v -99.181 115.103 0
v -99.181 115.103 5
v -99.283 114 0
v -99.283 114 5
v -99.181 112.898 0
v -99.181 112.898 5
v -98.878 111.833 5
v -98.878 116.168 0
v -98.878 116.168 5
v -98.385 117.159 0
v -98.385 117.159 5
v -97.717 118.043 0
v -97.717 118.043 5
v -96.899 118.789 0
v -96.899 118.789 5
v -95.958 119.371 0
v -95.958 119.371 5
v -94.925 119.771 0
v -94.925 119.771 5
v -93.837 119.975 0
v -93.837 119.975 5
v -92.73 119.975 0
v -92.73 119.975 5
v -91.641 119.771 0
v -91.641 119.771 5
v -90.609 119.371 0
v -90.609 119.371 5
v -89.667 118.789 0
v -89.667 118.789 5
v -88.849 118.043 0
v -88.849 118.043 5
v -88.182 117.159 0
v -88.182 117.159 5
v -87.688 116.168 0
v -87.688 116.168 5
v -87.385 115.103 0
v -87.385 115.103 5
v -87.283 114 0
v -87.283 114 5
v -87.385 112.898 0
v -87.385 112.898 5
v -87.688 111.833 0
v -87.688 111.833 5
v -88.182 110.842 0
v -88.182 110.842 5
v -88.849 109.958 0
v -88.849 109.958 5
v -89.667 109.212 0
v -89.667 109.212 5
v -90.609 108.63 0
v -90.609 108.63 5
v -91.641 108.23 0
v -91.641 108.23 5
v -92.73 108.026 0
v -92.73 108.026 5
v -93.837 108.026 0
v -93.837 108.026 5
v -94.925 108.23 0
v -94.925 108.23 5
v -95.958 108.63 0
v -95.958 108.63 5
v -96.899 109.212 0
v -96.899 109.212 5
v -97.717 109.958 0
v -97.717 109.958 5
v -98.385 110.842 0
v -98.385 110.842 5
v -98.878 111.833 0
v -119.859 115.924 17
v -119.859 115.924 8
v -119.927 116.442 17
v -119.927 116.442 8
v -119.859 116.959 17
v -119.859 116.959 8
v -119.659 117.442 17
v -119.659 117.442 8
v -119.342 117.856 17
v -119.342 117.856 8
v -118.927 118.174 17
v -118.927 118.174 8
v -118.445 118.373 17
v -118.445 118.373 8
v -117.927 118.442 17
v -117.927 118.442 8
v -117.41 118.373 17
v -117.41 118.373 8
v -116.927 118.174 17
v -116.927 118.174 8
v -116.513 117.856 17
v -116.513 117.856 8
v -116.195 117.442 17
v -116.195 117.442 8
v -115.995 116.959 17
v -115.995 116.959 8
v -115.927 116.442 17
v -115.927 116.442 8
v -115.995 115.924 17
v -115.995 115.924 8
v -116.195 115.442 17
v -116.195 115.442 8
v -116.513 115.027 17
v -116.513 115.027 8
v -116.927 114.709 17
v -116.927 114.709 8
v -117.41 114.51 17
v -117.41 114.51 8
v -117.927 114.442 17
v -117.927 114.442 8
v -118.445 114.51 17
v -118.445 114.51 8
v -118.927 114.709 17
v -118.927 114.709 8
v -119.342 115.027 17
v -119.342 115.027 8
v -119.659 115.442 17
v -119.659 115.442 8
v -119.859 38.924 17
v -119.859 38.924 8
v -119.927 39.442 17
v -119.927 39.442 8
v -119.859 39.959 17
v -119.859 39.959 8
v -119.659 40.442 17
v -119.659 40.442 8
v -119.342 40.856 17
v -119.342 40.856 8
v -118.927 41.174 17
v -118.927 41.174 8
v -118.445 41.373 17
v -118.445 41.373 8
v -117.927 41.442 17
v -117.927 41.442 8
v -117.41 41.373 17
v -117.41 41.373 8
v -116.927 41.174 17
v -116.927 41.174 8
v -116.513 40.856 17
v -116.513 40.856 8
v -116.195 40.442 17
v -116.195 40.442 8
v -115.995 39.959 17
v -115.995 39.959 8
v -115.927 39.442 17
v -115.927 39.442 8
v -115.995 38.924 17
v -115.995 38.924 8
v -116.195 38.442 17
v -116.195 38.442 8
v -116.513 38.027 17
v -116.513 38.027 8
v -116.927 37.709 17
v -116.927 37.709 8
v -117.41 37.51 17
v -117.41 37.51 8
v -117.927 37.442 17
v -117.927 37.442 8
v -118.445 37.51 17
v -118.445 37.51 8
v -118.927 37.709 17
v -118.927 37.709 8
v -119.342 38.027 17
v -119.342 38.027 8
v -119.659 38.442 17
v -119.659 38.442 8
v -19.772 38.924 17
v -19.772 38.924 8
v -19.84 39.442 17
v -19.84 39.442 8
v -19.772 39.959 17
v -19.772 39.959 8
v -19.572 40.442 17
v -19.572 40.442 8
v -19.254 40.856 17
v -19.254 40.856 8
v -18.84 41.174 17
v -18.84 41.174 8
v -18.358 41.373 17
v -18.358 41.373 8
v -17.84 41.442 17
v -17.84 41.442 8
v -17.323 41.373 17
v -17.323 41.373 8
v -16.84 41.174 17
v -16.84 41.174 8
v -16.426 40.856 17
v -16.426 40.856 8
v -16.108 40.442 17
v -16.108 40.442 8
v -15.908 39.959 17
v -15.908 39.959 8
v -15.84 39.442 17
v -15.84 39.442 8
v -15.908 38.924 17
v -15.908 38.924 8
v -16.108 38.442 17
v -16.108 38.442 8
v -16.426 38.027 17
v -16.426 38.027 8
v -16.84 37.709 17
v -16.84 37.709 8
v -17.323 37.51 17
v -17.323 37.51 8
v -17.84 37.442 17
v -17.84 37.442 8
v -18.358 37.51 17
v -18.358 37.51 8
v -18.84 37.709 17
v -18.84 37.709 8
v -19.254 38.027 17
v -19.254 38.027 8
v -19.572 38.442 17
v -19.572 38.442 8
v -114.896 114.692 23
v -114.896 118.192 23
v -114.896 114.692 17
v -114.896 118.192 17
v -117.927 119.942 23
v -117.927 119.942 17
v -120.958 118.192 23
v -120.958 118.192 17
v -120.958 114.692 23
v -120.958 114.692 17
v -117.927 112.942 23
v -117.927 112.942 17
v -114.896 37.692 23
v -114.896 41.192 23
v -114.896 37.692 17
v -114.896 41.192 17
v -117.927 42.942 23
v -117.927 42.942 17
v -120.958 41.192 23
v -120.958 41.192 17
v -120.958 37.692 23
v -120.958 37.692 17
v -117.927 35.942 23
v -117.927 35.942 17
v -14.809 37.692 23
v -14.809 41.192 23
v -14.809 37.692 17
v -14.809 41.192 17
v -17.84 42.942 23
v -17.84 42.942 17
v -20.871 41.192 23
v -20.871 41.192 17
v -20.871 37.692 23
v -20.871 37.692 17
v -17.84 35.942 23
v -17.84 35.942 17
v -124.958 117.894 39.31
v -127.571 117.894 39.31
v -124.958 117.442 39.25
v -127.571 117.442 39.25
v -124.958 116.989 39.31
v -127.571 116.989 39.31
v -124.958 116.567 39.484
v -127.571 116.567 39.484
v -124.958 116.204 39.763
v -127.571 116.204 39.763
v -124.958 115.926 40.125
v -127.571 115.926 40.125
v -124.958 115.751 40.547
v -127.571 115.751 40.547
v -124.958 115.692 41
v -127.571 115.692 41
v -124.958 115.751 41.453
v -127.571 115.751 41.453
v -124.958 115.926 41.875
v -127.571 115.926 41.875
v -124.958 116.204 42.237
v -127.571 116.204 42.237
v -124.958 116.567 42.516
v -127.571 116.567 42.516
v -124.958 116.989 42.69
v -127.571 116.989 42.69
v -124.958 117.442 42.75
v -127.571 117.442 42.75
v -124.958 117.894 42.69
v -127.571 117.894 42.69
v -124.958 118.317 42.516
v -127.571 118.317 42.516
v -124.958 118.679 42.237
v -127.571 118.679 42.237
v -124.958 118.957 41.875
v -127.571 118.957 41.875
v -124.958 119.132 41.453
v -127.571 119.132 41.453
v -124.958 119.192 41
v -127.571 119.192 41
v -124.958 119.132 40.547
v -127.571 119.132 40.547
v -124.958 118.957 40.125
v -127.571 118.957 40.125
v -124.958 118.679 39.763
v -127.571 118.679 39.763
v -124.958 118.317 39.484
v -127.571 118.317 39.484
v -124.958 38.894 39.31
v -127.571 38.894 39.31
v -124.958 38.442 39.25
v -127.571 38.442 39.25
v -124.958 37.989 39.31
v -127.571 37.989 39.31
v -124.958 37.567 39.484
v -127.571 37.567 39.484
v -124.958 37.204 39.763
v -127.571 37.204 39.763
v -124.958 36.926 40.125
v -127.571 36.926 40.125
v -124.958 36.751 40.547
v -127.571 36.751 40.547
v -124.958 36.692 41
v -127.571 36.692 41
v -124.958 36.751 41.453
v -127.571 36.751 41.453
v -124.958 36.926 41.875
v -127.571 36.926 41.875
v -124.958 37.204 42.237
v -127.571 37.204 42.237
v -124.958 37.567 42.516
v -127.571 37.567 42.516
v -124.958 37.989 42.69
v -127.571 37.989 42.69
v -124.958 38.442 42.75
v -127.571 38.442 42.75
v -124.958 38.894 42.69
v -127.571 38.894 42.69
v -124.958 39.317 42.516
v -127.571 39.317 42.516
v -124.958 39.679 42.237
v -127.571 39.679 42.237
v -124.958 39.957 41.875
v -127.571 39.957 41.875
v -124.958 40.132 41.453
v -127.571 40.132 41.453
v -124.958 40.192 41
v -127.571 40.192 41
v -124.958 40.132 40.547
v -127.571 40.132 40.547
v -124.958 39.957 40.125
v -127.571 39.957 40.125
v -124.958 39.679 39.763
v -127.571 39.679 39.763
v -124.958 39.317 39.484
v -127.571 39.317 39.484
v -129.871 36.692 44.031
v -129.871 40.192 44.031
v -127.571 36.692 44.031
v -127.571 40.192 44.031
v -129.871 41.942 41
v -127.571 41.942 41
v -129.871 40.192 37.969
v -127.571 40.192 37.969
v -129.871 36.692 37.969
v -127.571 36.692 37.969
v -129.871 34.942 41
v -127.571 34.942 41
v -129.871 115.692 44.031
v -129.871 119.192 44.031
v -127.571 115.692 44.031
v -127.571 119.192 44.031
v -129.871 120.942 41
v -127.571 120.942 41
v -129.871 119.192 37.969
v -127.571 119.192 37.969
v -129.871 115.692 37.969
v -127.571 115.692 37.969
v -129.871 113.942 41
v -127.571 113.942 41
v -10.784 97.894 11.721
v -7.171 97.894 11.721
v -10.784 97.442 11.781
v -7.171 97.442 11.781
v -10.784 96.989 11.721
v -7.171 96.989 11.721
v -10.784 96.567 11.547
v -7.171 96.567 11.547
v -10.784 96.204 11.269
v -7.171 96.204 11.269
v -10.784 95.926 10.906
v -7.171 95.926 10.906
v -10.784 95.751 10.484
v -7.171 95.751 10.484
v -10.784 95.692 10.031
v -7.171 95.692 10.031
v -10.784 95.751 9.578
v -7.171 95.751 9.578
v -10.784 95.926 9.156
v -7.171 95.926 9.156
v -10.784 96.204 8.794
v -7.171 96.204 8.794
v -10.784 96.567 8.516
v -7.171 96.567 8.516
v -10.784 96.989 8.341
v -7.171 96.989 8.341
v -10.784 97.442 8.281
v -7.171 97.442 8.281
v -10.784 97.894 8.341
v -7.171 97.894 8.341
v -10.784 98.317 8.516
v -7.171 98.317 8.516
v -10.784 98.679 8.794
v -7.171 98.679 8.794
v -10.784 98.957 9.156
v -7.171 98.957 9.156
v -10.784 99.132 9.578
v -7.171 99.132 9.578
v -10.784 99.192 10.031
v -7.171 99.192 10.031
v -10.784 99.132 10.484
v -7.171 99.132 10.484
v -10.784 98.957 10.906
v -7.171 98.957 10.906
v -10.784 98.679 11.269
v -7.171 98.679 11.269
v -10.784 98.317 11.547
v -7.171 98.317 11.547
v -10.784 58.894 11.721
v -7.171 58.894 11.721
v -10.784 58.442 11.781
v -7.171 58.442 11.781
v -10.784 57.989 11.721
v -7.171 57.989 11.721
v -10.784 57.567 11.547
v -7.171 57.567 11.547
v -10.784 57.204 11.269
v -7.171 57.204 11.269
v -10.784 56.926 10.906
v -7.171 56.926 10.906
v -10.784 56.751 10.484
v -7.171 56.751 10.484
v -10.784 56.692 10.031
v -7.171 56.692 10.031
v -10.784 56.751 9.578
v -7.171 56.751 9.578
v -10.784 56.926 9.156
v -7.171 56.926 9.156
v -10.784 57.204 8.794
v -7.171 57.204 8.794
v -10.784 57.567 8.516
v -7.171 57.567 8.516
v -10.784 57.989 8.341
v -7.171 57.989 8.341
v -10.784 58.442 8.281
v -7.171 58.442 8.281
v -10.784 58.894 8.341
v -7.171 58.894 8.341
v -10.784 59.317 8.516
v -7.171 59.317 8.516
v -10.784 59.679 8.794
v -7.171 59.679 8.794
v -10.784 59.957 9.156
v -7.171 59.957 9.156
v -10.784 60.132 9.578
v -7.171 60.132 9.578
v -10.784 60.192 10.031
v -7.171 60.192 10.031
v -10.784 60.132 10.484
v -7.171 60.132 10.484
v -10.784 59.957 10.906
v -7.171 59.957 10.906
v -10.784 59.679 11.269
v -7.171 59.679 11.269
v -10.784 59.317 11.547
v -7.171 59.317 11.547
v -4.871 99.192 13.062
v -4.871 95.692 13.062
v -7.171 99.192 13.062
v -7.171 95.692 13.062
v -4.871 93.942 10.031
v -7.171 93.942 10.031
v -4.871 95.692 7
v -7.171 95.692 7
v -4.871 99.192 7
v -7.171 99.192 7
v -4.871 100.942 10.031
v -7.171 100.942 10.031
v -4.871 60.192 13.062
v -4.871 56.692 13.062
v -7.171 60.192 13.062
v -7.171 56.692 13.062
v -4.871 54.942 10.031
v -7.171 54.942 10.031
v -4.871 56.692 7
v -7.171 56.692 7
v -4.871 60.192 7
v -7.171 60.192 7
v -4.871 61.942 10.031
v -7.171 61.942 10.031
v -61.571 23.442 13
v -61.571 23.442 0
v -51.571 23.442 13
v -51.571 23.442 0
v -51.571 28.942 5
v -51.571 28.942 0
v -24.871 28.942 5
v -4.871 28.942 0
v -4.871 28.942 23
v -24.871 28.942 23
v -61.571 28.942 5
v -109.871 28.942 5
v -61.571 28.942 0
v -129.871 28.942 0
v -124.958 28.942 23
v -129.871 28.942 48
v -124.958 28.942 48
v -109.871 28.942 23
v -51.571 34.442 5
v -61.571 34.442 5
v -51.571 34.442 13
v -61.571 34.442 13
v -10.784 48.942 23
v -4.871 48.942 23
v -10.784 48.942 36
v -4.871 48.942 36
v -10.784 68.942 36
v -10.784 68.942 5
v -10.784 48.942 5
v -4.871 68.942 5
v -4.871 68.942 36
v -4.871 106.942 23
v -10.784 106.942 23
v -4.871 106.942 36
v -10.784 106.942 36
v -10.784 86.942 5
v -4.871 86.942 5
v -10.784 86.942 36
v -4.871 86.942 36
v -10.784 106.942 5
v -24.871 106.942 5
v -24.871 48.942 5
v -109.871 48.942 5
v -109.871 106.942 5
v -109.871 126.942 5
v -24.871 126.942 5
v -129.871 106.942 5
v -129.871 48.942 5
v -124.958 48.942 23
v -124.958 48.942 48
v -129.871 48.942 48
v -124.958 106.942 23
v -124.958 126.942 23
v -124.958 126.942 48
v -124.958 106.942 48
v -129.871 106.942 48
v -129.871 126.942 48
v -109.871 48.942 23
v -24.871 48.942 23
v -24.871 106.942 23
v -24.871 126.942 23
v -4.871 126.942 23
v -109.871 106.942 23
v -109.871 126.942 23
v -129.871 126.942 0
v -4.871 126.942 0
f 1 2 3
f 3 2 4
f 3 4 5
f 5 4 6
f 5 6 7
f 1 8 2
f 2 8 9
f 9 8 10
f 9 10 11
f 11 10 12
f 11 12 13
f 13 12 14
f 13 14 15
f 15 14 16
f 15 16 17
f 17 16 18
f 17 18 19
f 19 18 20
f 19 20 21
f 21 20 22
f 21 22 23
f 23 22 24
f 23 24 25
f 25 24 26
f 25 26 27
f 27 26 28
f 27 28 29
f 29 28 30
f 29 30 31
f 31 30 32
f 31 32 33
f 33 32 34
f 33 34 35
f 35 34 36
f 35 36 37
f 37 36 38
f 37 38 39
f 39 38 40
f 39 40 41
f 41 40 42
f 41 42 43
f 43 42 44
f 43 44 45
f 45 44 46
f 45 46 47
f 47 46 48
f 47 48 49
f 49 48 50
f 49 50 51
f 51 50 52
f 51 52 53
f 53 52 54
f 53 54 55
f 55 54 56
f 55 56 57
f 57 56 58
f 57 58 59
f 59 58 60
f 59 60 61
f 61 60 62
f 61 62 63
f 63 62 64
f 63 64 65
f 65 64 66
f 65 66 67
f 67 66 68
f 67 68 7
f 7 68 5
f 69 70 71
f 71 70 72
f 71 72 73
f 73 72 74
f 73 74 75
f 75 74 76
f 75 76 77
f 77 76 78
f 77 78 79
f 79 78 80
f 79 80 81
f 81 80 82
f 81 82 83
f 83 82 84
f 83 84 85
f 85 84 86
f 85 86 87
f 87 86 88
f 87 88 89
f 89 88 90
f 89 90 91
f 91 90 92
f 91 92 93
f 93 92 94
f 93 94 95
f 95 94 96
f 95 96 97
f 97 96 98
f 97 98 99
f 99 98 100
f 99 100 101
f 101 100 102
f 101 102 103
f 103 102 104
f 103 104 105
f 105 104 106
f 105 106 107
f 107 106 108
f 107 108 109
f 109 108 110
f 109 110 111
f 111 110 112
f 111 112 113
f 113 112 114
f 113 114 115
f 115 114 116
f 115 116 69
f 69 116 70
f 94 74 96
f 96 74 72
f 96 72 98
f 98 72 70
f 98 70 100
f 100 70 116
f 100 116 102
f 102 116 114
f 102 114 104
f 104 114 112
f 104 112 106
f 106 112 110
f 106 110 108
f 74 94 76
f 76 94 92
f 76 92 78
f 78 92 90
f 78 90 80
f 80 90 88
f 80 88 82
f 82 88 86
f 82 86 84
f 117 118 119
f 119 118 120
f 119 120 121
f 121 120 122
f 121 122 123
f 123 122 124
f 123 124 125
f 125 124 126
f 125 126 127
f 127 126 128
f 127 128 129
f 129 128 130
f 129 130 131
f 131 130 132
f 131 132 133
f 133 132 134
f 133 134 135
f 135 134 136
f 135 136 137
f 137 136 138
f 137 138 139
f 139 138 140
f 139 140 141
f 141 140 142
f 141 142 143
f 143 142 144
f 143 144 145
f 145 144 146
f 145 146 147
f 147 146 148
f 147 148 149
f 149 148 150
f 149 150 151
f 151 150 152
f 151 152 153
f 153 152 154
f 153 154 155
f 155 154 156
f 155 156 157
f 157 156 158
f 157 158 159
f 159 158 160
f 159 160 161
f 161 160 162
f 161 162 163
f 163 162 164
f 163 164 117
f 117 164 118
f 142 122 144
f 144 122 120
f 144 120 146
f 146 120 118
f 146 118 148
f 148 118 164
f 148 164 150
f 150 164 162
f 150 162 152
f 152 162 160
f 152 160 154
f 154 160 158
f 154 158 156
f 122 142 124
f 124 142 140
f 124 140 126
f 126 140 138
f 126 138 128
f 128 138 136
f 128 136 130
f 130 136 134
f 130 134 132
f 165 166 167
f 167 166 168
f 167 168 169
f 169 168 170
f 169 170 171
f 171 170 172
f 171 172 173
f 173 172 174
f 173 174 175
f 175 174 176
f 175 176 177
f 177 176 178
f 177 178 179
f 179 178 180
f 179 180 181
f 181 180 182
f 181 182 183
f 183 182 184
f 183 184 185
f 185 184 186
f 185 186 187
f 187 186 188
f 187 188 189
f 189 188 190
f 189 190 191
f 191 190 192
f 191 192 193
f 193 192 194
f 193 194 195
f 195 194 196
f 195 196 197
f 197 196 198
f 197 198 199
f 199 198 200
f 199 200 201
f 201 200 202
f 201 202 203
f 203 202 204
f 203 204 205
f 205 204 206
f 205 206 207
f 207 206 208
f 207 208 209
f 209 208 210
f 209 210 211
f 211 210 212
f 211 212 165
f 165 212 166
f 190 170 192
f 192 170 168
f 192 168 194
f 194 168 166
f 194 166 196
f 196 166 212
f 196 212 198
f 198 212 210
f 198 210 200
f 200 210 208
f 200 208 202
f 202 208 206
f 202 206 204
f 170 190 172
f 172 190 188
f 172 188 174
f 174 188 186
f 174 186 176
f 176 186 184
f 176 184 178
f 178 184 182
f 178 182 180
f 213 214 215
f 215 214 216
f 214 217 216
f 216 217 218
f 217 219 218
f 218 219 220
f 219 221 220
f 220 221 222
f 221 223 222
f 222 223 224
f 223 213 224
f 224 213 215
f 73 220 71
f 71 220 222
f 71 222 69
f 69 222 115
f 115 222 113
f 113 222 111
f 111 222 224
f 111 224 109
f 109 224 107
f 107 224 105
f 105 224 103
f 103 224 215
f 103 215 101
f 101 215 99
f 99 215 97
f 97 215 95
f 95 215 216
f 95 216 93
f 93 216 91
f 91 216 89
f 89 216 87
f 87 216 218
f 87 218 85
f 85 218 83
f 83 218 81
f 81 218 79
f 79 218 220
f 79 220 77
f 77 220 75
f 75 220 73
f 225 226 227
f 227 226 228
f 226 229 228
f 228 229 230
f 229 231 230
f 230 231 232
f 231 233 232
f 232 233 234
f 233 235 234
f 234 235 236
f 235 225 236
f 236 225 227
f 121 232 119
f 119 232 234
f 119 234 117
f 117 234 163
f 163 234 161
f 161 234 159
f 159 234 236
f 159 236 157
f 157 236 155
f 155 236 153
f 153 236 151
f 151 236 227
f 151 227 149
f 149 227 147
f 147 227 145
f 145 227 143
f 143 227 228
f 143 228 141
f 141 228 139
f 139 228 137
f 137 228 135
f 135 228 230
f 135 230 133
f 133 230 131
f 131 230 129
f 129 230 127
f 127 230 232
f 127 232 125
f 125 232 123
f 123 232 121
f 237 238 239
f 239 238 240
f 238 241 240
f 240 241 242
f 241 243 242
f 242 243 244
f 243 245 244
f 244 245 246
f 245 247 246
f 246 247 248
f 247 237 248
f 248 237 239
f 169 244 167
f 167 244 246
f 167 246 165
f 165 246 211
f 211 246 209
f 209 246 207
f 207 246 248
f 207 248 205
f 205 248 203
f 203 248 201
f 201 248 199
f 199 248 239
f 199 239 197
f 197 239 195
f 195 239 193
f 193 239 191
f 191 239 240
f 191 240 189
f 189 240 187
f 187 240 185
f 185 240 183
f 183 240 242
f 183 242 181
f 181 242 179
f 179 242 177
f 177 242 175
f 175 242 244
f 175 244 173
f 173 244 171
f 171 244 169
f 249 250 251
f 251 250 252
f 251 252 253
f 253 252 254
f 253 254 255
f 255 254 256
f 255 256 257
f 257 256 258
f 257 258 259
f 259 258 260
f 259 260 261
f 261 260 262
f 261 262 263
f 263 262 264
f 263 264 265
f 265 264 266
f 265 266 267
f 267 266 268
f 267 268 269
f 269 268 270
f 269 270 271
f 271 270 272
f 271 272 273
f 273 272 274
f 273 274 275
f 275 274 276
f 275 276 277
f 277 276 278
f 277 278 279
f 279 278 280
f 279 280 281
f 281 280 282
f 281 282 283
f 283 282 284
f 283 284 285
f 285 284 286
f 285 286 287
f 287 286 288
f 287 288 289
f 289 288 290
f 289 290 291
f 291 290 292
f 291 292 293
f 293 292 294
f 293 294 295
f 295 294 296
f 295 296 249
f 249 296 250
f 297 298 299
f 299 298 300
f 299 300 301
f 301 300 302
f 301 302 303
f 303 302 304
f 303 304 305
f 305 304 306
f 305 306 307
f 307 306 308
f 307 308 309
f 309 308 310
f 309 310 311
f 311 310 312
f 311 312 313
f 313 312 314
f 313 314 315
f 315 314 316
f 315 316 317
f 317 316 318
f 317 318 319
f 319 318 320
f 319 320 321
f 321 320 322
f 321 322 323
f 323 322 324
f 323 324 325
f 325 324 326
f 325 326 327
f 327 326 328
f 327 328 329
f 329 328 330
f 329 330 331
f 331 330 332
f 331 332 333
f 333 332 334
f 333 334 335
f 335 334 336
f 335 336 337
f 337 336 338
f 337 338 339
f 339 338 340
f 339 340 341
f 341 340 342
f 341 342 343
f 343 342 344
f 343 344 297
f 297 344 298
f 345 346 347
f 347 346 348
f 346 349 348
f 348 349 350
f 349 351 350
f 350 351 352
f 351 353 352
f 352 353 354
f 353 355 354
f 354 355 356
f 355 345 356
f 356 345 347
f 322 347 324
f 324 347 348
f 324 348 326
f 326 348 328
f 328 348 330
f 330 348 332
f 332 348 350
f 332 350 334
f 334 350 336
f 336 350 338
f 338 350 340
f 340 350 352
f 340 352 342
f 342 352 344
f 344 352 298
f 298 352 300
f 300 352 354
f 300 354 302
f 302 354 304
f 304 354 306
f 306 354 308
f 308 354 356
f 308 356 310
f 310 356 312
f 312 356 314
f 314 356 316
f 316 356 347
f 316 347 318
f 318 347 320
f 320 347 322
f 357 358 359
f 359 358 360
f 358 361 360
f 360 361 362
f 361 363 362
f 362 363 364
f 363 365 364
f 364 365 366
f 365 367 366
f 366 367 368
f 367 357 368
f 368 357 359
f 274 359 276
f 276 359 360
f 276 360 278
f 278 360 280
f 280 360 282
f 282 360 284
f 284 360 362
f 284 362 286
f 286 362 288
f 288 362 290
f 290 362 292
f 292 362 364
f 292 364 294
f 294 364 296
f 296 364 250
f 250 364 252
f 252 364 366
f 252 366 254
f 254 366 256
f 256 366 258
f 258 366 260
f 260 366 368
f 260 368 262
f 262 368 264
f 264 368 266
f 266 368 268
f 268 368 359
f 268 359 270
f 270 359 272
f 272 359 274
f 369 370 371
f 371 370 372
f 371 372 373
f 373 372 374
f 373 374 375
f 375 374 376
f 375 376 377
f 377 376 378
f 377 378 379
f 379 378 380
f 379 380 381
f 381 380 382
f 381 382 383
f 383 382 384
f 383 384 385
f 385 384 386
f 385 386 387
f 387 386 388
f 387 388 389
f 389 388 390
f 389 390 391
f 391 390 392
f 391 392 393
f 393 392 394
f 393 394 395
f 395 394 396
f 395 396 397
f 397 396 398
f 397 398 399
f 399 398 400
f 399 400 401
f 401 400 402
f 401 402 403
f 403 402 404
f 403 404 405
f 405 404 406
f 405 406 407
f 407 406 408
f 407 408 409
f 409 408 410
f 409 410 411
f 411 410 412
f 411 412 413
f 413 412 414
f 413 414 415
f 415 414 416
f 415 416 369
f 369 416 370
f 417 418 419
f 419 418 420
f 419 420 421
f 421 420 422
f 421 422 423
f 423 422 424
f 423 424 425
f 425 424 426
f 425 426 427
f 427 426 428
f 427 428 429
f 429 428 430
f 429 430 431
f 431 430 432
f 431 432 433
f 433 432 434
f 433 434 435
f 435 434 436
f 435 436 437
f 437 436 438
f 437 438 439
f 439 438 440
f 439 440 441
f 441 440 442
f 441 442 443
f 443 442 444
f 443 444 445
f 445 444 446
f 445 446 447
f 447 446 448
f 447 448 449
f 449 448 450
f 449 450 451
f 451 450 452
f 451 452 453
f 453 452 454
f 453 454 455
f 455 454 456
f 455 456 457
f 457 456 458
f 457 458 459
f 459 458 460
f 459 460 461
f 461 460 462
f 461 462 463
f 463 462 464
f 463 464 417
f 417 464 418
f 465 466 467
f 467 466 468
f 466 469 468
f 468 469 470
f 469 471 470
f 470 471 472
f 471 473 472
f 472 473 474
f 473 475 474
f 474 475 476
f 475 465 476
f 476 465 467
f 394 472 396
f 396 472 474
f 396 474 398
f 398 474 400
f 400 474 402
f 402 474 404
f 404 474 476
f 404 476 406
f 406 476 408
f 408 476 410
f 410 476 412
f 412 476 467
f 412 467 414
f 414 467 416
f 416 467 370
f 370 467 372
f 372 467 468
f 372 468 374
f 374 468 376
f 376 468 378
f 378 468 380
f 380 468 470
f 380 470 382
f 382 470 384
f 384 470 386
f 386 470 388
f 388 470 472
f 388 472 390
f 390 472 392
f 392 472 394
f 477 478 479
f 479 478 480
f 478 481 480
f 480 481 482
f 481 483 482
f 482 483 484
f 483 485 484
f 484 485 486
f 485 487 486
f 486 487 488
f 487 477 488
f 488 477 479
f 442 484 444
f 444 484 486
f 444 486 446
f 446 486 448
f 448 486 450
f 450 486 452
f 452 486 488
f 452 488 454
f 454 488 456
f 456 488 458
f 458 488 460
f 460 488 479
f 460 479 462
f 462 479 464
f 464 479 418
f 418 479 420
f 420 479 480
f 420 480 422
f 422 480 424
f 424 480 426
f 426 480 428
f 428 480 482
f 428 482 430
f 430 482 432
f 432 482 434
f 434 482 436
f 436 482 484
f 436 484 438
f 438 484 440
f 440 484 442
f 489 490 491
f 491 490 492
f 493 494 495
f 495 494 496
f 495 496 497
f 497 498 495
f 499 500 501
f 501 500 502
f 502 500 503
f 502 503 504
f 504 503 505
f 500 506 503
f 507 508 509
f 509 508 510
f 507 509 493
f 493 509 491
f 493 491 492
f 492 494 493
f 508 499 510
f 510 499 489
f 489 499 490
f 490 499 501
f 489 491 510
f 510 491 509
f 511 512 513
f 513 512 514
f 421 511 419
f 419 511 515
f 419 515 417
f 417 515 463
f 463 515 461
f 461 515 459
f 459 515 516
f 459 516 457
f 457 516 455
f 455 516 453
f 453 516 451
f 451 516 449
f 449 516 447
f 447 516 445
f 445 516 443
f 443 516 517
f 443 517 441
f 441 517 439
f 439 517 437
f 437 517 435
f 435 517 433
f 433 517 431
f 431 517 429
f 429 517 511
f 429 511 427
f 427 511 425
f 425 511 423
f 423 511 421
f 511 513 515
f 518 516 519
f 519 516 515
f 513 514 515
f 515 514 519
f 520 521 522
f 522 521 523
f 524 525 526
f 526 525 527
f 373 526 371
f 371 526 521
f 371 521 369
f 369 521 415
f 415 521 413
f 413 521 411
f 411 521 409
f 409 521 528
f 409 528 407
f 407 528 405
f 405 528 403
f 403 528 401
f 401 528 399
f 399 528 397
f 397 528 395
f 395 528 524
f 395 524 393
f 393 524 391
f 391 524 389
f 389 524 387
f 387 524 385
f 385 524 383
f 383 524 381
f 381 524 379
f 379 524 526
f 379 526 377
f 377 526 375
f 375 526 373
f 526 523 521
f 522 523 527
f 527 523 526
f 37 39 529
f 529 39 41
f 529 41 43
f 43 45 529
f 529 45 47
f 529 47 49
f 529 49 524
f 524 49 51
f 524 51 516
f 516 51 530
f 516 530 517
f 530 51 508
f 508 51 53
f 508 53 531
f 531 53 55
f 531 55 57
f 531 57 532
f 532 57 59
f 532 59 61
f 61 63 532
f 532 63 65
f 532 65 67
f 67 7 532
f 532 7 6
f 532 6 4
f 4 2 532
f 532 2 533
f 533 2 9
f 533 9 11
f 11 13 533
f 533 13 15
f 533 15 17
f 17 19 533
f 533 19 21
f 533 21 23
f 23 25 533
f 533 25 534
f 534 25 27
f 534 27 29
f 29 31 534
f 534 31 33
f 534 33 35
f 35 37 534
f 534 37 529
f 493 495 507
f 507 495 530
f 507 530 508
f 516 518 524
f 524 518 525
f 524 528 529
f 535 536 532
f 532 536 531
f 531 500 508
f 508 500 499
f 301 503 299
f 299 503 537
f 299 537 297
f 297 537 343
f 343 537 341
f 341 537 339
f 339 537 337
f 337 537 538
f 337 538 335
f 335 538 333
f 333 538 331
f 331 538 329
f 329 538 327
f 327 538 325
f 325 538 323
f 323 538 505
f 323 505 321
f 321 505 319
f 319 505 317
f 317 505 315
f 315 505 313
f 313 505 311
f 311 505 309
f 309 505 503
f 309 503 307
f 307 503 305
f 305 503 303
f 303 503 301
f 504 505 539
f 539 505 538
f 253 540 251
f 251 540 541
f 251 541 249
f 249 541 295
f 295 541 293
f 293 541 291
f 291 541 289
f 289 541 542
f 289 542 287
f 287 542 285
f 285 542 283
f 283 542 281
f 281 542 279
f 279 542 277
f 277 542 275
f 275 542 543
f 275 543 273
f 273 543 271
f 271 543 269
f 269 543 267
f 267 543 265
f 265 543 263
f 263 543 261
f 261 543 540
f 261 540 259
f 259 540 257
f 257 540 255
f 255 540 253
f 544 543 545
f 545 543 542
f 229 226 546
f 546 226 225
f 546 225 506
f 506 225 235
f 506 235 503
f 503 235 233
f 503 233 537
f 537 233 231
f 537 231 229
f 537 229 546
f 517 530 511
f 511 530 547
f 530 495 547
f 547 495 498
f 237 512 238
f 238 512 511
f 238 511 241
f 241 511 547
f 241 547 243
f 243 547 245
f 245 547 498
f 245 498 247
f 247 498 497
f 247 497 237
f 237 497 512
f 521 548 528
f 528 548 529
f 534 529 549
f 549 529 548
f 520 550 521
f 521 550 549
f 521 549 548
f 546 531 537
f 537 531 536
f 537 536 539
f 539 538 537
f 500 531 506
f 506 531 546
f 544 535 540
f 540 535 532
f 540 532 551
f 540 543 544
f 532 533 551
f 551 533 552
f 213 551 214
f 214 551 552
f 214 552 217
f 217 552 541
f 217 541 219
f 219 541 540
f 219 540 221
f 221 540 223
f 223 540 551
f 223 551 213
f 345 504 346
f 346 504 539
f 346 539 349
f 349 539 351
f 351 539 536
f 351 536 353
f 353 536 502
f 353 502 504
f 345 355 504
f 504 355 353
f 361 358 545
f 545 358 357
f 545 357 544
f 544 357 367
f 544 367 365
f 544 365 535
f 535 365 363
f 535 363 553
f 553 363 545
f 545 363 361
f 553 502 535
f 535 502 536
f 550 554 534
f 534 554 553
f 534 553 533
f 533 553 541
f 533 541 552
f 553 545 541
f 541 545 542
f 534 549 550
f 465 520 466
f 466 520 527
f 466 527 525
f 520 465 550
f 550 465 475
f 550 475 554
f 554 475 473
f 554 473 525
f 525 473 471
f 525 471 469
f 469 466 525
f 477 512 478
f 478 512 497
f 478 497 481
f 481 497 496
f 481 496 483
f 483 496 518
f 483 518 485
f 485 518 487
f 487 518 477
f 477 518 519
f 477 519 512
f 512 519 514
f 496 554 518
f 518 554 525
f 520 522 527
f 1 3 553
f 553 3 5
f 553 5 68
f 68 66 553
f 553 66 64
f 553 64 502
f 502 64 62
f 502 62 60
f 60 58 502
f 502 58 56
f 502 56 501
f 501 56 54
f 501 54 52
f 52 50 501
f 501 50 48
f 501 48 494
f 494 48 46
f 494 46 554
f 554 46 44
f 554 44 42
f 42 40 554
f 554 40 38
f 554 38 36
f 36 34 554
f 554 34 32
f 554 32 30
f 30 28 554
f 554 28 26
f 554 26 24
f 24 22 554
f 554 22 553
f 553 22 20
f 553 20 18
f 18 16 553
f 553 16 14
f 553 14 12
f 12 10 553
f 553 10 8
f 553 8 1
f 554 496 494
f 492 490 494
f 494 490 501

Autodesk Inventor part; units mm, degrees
ref_plane "YZ Plane" through (0, 0, 0) normal (1, 0, 0) x (0, 1, 0)
ref_plane "XZ Plane" through (0, 0, 0) normal (0, 1, 0) x (-1, 0, 0)
ref_plane "XY Plane" through (0, 0, 0) normal (0, 0, 1) x (1, 0, 0)
sketch "Boceto1" plane through (0, 0, 0) normal (0, 0, 1) x (1, 0, 0)
  line L0 (-129.8713, 126.9415) -> (-4.8713, 126.9415)
  line L1 (-4.8713, 126.9415) -> (-4.8713, 28.9415)
  line L2 (-4.8713, 28.9415) -> (-129.8713, 28.9415)
  line L3 (-129.8713, 28.9415) -> (-129.8713, 126.9415)
  point P0 (0, 0)
  dimension "d0" = 98
  dimension "d1" = 125
extrude "Extrusión1" add sketch "Boceto1" along normal blind 5
sketch "Boceto2" plane through (0, 0, 5) normal (0, 0, 1) x (1, 0, 0)
  line L0 (-4.8713, 126.9415) -> (-129.8713, 126.9415) projected
  point P0 (0, 0)
sketch "Boceto3" plane through (0, 0, 5) normal (0, 0, 1) x (1, 0, 0)
  line L0 (-129.8713, 126.9415) -> (-129.8713, 28.9415) projected
  line L1 (-124.9455, 121.4415) -> (-10.7713, 121.4415) construction
  line L2 (-10.7713, 121.4415) -> (-10.7713, 34.4465) construction
  line L3 (-10.7713, 34.4465) -> (-124.9455, 34.4465) construction
  line L4 (-124.9455, 34.4465) -> (-124.9455, 121.4415) construction
  line L5 (-4.8713, 28.9415) -> (-4.8713, 126.9415) projected
  line L6 (-4.8713, 126.9415) -> (-129.8713, 126.9415) projected
  line L7 (-129.8713, 28.9415) -> (-4.8713, 28.9415) projected
  line L8 (-129.8713, 126.9415) -> (-109.8713, 126.9415)
  line L9 (-109.8713, 126.9415) -> (-109.8713, 106.9415)
  line L10 (-109.8713, 106.9415) -> (-129.8713, 106.9415)
  line L11 (-129.8713, 106.9415) -> (-129.8713, 126.9415)
  line L12 (-129.8713, 28.9415) -> (-109.8713, 28.9415)
  line L13 (-109.8713, 28.9415) -> (-109.8713, 48.9415)
  line L14 (-109.8713, 48.9415) -> (-129.8713, 48.9415)
  line L15 (-129.8713, 48.9415) -> (-129.8713, 28.9415)
  line L16 (-4.8713, 28.9415) -> (-24.8713, 28.9415)
  line L17 (-24.8713, 28.9415) -> (-24.8713, 48.9415)
  line L18 (-24.8713, 48.9415) -> (-4.8713, 48.9415)
  line L19 (-4.8713, 48.9415) -> (-4.8713, 28.9415)
  line L20 (-4.8713, 126.9415) -> (-24.8713, 126.9415)
  line L21 (-24.8713, 126.9415) -> (-24.8713, 106.9415)
  line L22 (-24.8713, 106.9415) -> (-4.8713, 106.9415)
  line L23 (-4.8713, 106.9415) -> (-4.8713, 126.9415)
  point P0 (0, 0)
  point P1 (-109.8713, 28.9415)
  point P2 (-4.8713, 106.9415)
  dimension "d58" = 86.995
  dimension "d62" = 114.1741
  dimension "d67" = 5.9
  dimension "d68" = 4.9259
  dimension "d70" = 5.5
  dimension "d71" = 5.505
  dimension "d86" = 20
  dimension "d87" = 20
  dimension "d88" = 20
  dimension "d89" = 20
  dimension "d90" = 20
  dimension "d91" = 20
  dimension "d92" = 20
  dimension "d93" = 20
extrude "Extrusión2" add sketch "Boceto3" along normal blind 18 contours L6 L9 L10 L0 | L14 L13 L7 L0 | L6 L5 L22 L21 | L17 L18 L5 L7
sketch "Boceto4" plane through (0, 0, 23) normal (0, 0, 1) x (1, 0, 0)
  line L0 (-124.9585, 121.4415) -> (-10.7843, 121.4415) construction
  line L1 (-10.7843, 121.4415) -> (-10.7843, 34.4465) construction
  line L2 (-10.7843, 34.4465) -> (-124.9585, 34.4465) construction
  line L3 (-124.9585, 34.4465) -> (-124.9585, 121.4415) construction
  line L4 (-4.8713, 48.9415) -> (-4.8713, 106.9415) projected
  line L5 (-24.8713, 126.9415) -> (-109.8713, 126.9415) projected
  line L6 (-109.8713, 28.9415) -> (-24.8713, 28.9415) projected
  line L7 (-129.8713, 106.9415) -> (-129.8713, 48.9415) projected
  line L8 (-129.8713, 106.9415) -> (-109.8713, 106.9415) projected
  line L9 (-129.8713, 126.9415) -> (-124.9585, 126.9415)
  line L10 (-124.9585, 126.9415) -> (-124.9585, 106.9415)
  line L11 (-124.9585, 106.9415) -> (-129.8713, 106.9415)
  line L12 (-129.8713, 106.9415) -> (-129.8713, 126.9415)
  line L13 (-124.9585, 28.9415) -> (-129.8713, 28.9415)
  line L14 (-129.8713, 28.9415) -> (-129.8713, 48.9415)
  line L15 (-129.8713, 48.9415) -> (-124.9585, 48.9415)
  line L16 (-124.9585, 48.9415) -> (-124.9585, 28.9415)
  line L17 (-4.8713, 28.9415) -> (-4.8713, 126.9415) projected
  point P0 (0, 0)
  point P1 (-10.7843, 48.9415)
  dimension "d105" = 5.5
  dimension "d106" = 5.505
  dimension "d108" = 5.913
  dimension "d109" = 4.9129
  dimension "d111" = 20
extrude "Extrusión3" add sketch "Boceto4" along normal blind 25
sketch "Boceto5" plane through (0, 0, 5) normal (0, 0, 1) x (1, 0, 0)
  line L0 (-4.8713, 48.9415) -> (-4.8713, 106.9415) projected
  line L1 (-4.8713, 48.9415) -> (-10.7843, 48.9415)
  line L2 (-10.7843, 48.9415) -> (-10.7843, 68.9415)
  line L3 (-10.7843, 68.9415) -> (-4.8713, 68.9415)
  line L4 (-4.8713, 68.9415) -> (-4.8713, 48.9415)
  line L5 (-4.8713, 106.9415) -> (-24.8713, 106.9415) projected
  line L6 (-4.8713, 106.9415) -> (-10.7843, 106.9415)
  line L7 (-10.7843, 106.9415) -> (-10.7843, 86.9415)
  line L8 (-10.7843, 86.9415) -> (-4.8713, 86.9415)
  line L9 (-4.8713, 86.9415) -> (-4.8713, 106.9415)
  point P0 (0, 0)
  dimension "d120" = 20
  dimension "d121" = 5.913
  dimension "d122" = 20
extrude "Extrusión4" add sketch "Boceto5" along normal blind 31
sketch "Boceto6" plane through (0, 0, 5) normal (0, 0, 1) x (1, 0, 0)
  line L0 (-10.7843, 120.6745) -> (-10.7843, 34.4415) construction
  line L1 (-123.9583, 34.4415) -> (-123.9583, 120.6745) construction
  line L2 (-10.7843, 34.4415) -> (-123.9583, 34.4415) construction
  line L3 (-123.9583, 120.6745) -> (-10.7843, 120.6745) construction
  line L4 (-4.8713, 68.9415) -> (-4.8713, 86.9415) projected
  line L5 (-129.8713, 106.9415) -> (-129.8713, 48.9415) projected
  line L6 (-109.8713, 28.9415) -> (-24.8713, 28.9415) projected
  line L7 (-24.8713, 126.9415) -> (-109.8713, 126.9415) projected
  line L8 (-61.5713, 34.4415) -> (-51.5713, 34.4415)
  line L9 (-51.5713, 34.4415) -> (-51.5713, 28.9415)
  line L10 (-51.5713, 28.9415) -> (-61.5713, 28.9415)
  line L11 (-61.5713, 28.9415) -> (-61.5713, 34.4415)
  line L12 (-4.8713, 28.9415) -> (-4.8713, 48.9415) projected
  line L13 (-129.8713, 48.9415) -> (-129.8713, 28.9415) projected
  point P0 (0, 0)
  point P1 (-123.9583, 118.8668)
  point P2 (-123.9583, 40.8668)
  point P3 (-10.7843, 60.8668)
  point P4 (-51.5713, 31.6915)
  point P5 (-61.5713, 28.9415)
  dimension "d130" = 5.913
  dimension "d131" = 5.913
  dimension "d132" = 5.5
  dimension "d133" = 6.267
  dimension "d135" = 10
  dimension "d136" = 46.7
  dimension "d137" = 68.3
extrude "Extrusión5" add sketch "Boceto6" along normal blind 8
sketch "Boceto7" plane through (-129.8713, 28.9415, 0) normal (0, -1, 0) x (1, 0, 0)
  line L0 (68.3, 5) -> (68.3, 13) projected
  line L1 (68.3, 13) -> (78.3, 13)
  line L2 (78.3, 13) -> (78.3, 0)
  line L3 (78.3, 0) -> (68.3, 0)
  line L4 (68.3, 0) -> (68.3, 13)
  line L5 (0, 0) -> (125, 0) projected
  point P0 (129.8713, 0)
  point P1 (78.3, 5)
extrude "Extrusión6" add sketch "Boceto7" along normal blind 5.5
sketch "Boceto8" plane through (-4.8713, 28.9415, 0) normal (1, 0, 0) x (0, 0, -1)
  line L0 (-7, 31.25) -> (-7, 27.75)
  line L1 (-7, 27.75) -> (-10.0311, 26)
  line L2 (-10.0311, 26) -> (-13.0622, 27.75)
  line L3 (-13.0622, 27.75) -> (-13.0622, 31.25)
  line L4 (-13.0622, 31.25) -> (-10.0311, 33)
  line L5 (-10.0311, 33) -> (-7, 31.25)
  line L6 (0, 0) -> (0, 98) projected
  line L7 (-5, 40) -> (-36, 40) projected
  line L8 (-5, 58) -> (-36, 58) projected
  line L9 (-7, 70.25) -> (-7, 66.75)
  line L10 (-7, 66.75) -> (-10.0311, 65)
  line L11 (-10.0311, 65) -> (-13.0622, 66.75)
  line L12 (-13.0622, 66.75) -> (-13.0622, 70.25)
  line L13 (-13.0622, 70.25) -> (-10.0311, 72)
  line L14 (-10.0311, 72) -> (-7, 70.25)
  point P0 (0, -28.9415)
  point P1 (-10.0311, 29.5)
  point P2 (-7, 29.5)
  point P3 (-10.0311, 68.5)
  point P4 (-7, 68.5)
  dimension "d149" = 3.5
  dimension "d151" = 7
  dimension "d153" = 7
  dimension "d156" = 3.5
  dimension "d157" = 7
  dimension "d158" = 7
extrude "Extrusión7" cut sketch "Boceto8" against normal blind 2.3
sketch "Boceto9" plane through (0, 0, 5) normal (0, 0, 1) x (1, 0, 0)
  point P0 (0, 0)
sketch "Boceto10" plane through (-7.1713, 28.9415, 0) normal (1, 0, 0) x (0, 0, -1)
  circle A0 centre (-10.0311, 29.5) radius 1.75
  line L0 (-13.0622, 27.75) -> (-13.0622, 31.25) projected
  line L1 (-10.0311, 33) -> (-7, 31.25) projected
  line L2 (-7, 31.25) -> (-7, 27.75) projected
  line L3 (-13.0622, 31.25) -> (-10.0311, 33) projected
  line L4 (-7, 27.75) -> (-10.0311, 26) projected
  circle A1 centre (-10.0311, 68.5) radius 1.75
  line L5 (-10.0311, 65) -> (-13.0622, 66.75) projected
  line L6 (-13.0622, 66.75) -> (-13.0622, 70.25) projected
  line L7 (-10.0311, 72) -> (-7, 70.25) projected
  line L8 (-7, 70.25) -> (-7, 66.75) projected
  point P0 (0, -28.9415)
  dimension "d161" = 3.5
  dimension "d162" = 3.5
  dimension "d163" = 3.5
  dimension "d164" = 3.5
  dimension "d165" = 3.5
  dimension "d166" = 3.5
  dimension "d167" = 3.5
  dimension "d168" = 3.5
  dimension "d169" = 3.5
  dimension "d170" = 3.5
  dimension "d171" = 3.5
extrude "Extrusión8" cut sketch "Boceto10" against normal blind 5
sketch "Boceto11" plane through (-129.8713, 28.9415, 0) normal (-1, 0, 0) x (0, 0, 1)
  line L0 (37.9689, 86.75) -> (37.9689, 90.25)
  line L1 (37.9689, 90.25) -> (41, 92)
  line L2 (41, 92) -> (44.0311, 90.25)
  line L3 (44.0311, 90.25) -> (44.0311, 86.75)
  line L4 (44.0311, 86.75) -> (41, 85)
  line L5 (41, 85) -> (37.9689, 86.75)
  line L6 (37.9689, 7.75) -> (37.9689, 11.25)
  line L7 (37.9689, 11.25) -> (41, 13)
  line L8 (41, 13) -> (44.0311, 11.25)
  line L9 (44.0311, 11.25) -> (44.0311, 7.75)
  line L10 (44.0311, 7.75) -> (41, 6)
  line L11 (41, 6) -> (37.9689, 7.75)
  line L12 (48, 20) -> (48, 0) projected
  line L13 (48, 98) -> (48, 78) projected
  line L14 (5, 78) -> (48, 78) projected
  line L15 (5, 20) -> (48, 20) projected
  point P0 (0, -28.9415)
  point P1 (41, 88.5)
  point P2 (41, 9.5)
  point P3 (48, 10)
  dimension "d174" = 7
  dimension "d175" = 3.5
  dimension "d176" = 7
  dimension "d177" = 3.5
  dimension "d178" = 7
  dimension "d179" = 7
extrude "Extrusión9" cut sketch "Boceto11" against normal blind 2.3
sketch "Boceto12" plane through (-127.5713, 28.9415, 0) normal (-1, 0, 0) x (0, 0, 1)
  circle A0 centre (41, 88.5) radius 1.75
  line L0 (44.0311, 86.75) -> (41, 85) projected
  line L1 (37.9689, 90.25) -> (41, 92) projected
  line L2 (41, 85) -> (37.9689, 86.75) projected
  line L3 (44.0311, 90.25) -> (44.0311, 86.75) projected
  circle A1 centre (41, 9.5) radius 1.75
  line L4 (44.0311, 11.25) -> (44.0311, 7.75) projected
  line L5 (37.9689, 11.25) -> (41, 13) projected
  point P0 (0, -28.9415)
  dimension "d182" = 3.5
  dimension "d184" = 3.5
  dimension "d187" = 3.5
  dimension "d188" = 3.5
  dimension "d189" = 3.5
  dimension "d190" = 3.5
  dimension "d191" = 3.5
  dimension "d192" = 3.5
extrude "Extrusión10" cut sketch "Boceto12" against normal blind 5
sketch "Boceto13" plane through (0, 0, 23) normal (0, 0, 1) x (1, 0, 0)
  line L0 (-20.8713, 37.6915) -> (-20.8713, 41.1915)
  line L1 (-20.8713, 41.1915) -> (-17.8403, 42.9415)
  line L2 (-17.8403, 42.9415) -> (-14.8092, 41.1915)
  line L3 (-14.8092, 41.1915) -> (-14.8092, 37.6915)
  line L4 (-14.8092, 37.6915) -> (-17.8403, 35.9415)
  line L5 (-17.8403, 35.9415) -> (-20.8713, 37.6915)
  line L6 (-24.8713, 48.9415) -> (-24.8713, 28.9415) projected
  line L7 (-10.7843, 48.9415) -> (-24.8713, 48.9415) projected
  line L8 (-120.9585, 37.6915) -> (-120.9585, 41.1915)
  line L9 (-120.9585, 41.1915) -> (-117.9274, 42.9415)
  line L10 (-117.9274, 42.9415) -> (-114.8963, 41.1915)
  line L11 (-114.8963, 41.1915) -> (-114.8963, 37.6915)
  line L12 (-114.8963, 37.6915) -> (-117.9274, 35.9415)
  line L13 (-117.9274, 35.9415) -> (-120.9585, 37.6915)
  line L14 (-124.9585, 28.9415) -> (-124.9585, 48.9415) projected
  line L15 (-109.8713, 48.9415) -> (-124.9585, 48.9415) projected
  line L16 (-120.9585, 114.6915) -> (-120.9585, 118.1915)
  line L17 (-120.9585, 118.1915) -> (-117.9274, 119.9415)
  line L18 (-117.9274, 119.9415) -> (-114.8963, 118.1915)
  line L19 (-114.8963, 118.1915) -> (-114.8963, 114.6915)
  line L20 (-114.8963, 114.6915) -> (-117.9274, 112.9415)
  line L21 (-117.9274, 112.9415) -> (-120.9585, 114.6915)
  line L22 (-124.9585, 106.9415) -> (-124.9585, 126.9415) projected
  line L23 (-124.9585, 106.9415) -> (-109.8713, 106.9415) projected
  line L24 (-13.0065, 121.4993) -> (-13.0065, 35.2663) construction
  line L25 (-126.1805, 35.2663) -> (-126.1805, 121.4993) construction
  line L26 (-13.0065, 35.2663) -> (-126.1805, 35.2663) construction
  line L27 (-126.1805, 121.4993) -> (-13.0065, 121.4993) construction
  point P0 (0, 0)
  point P1 (-17.8403, 39.4415)
  point P2 (-20.8713, 39.4415)
  point P3 (-117.9274, 39.4415)
  point P4 (-120.9585, 39.4415)
  point P5 (-117.9274, 116.4415)
  point P6 (-13.0065, 61.6917)
  point P7 (-126.1805, 119.6917)
  point P8 (-126.1805, 41.6917)
  point P9 (-63.7935, 35.2663)
  dimension "d195" = 3.5
  dimension "d196" = 6
  dimension "d197" = 4
  dimension "d198" = 6
  dimension "d199" = 4
  dimension "d200" = 6
  dimension "d201" = 4
  dimension "d202" = 3.5
  dimension "d203" = 3.5
extrude "Extrusión11" cut sketch "Boceto13" against normal blind 6
sketch "Boceto17" plane through (0, 0, 23) normal (0, 0, 1) x (1, 0, 0)
  circle A0 centre (-17.8403, 39.4415) radius 2
  line L0 (-14.8092, 41.1915) -> (-14.8092, 37.6915) projected
  line L1 (-14.8092, 41.1915) -> (-14.8092, 37.6915) projected
  line L2 (-20.8713, 41.1915) -> (-17.8403, 42.9415) projected
  circle A1 centre (-117.9274, 39.4415) radius 2
  line L3 (-117.9274, 42.9415) -> (-114.8963, 41.1915) projected
  line L4 (-120.9585, 37.6915) -> (-120.9585, 41.1915) projected
  line L5 (-114.8963, 37.6915) -> (-117.9274, 35.9415) projected
  circle A2 centre (-117.9274, 116.4415) radius 2
  line L6 (-117.9274, 119.9415) -> (-114.8963, 118.1915) projected
  line L7 (-120.9585, 114.6915) -> (-120.9585, 118.1915) projected
  point P0 (0, 0)
  point P1 (-20.8713, 37.6915)
  point P2 (-114.8963, 114.6915)
  dimension "d236" = 4
  dimension "d238" = 3.5
  dimension "d239" = 3.5
  dimension "d240" = 4
  dimension "d241" = 3.5
  dimension "d243" = 3.5
  dimension "d244" = 4
  dimension "d245" = 3.5
  dimension "d246" = 3.5
  dimension "d247" = 3.5
  dimension "d248" = 3.5
  dimension "d249" = 3.5
extrude "Extrusión15" cut sketch "Boceto17" against normal blind 15
sketch "Boceto18" plane through (0, 0, 5) normal (0, 0, 1) x (1, 0, 0)
  line L0 (125.8009, 116.9426) -> (125.8009, 30.6207) construction
  line L1 (12.5101, 30.6207) -> (12.5101, 116.9426) construction
  line L2 (125.8009, 30.6207) -> (12.5101, 30.6207) construction
  line L3 (12.5101, 116.9426) -> (125.8009, 116.9426) construction
  line L4 (-10.9427, 120.5005) -> (-10.9427, 34.2675) construction
  line L5 (-124.1167, 34.2675) -> (-124.1167, 120.5005) construction
  line L6 (-10.9427, 34.2675) -> (-124.1167, 34.2675) construction
  line L7 (-124.1167, 120.5005) -> (-10.9427, 120.5005) construction
  circle A0 centre (-93.2833, 114.0005) radius 6
  line L8 (-109.8713, 106.9415) -> (-109.8713, 126.9415) projected
  line L9 (-100.2833, 119.5538) -> (-100.2833, 109.0268)
  line L10 (-129.8713, 106.9415) -> (-129.8713, 48.9415) projected
  line L11 (-24.8713, 126.9415) -> (-109.8713, 126.9415) projected
  point P0 (0, 0)
  point P1 (-11.7474, -20.2697)
  point P2 (-124.9214, 37.7303)
  point P3 (-124.9214, -40.2697)
  point P4 (-146.9688, 35.7152)
  point P5 (-10.185, 48.671)
  point P6 (-123.359, 106.671)
  point P7 (-123.359, 28.671)
  point P8 (-56.0563, 34.9687)
  point P9 (125.8009, 4.0884)
  point P10 (12.5101, 62.0884)
  point P11 (12.5101, -15.9116)
  point P12 (-197.4234, 30.6207)
  point P13 (-10.9427, 45.9824)
  point P14 (-124.1167, 103.9824)
  point P15 (-124.1167, 25.9824)
  point P16 (-58.9128, 34.2675)
  point P17 (-95.5526, 120.5005)
  point P18 (-100.2833, 114.2903)
  dimension "d283" = 12
  dimension "d299" = 9.5881
  dimension "d301" = 6.5
  dimension "d303" = 7
  dimension "d305" = 5.7546
  dimension "d307" = 6.441
extrude "Extrusión16" cut sketch "Boceto18" against normal blind 10
properties part number "Tapadera-prototipo_3DPrint"
